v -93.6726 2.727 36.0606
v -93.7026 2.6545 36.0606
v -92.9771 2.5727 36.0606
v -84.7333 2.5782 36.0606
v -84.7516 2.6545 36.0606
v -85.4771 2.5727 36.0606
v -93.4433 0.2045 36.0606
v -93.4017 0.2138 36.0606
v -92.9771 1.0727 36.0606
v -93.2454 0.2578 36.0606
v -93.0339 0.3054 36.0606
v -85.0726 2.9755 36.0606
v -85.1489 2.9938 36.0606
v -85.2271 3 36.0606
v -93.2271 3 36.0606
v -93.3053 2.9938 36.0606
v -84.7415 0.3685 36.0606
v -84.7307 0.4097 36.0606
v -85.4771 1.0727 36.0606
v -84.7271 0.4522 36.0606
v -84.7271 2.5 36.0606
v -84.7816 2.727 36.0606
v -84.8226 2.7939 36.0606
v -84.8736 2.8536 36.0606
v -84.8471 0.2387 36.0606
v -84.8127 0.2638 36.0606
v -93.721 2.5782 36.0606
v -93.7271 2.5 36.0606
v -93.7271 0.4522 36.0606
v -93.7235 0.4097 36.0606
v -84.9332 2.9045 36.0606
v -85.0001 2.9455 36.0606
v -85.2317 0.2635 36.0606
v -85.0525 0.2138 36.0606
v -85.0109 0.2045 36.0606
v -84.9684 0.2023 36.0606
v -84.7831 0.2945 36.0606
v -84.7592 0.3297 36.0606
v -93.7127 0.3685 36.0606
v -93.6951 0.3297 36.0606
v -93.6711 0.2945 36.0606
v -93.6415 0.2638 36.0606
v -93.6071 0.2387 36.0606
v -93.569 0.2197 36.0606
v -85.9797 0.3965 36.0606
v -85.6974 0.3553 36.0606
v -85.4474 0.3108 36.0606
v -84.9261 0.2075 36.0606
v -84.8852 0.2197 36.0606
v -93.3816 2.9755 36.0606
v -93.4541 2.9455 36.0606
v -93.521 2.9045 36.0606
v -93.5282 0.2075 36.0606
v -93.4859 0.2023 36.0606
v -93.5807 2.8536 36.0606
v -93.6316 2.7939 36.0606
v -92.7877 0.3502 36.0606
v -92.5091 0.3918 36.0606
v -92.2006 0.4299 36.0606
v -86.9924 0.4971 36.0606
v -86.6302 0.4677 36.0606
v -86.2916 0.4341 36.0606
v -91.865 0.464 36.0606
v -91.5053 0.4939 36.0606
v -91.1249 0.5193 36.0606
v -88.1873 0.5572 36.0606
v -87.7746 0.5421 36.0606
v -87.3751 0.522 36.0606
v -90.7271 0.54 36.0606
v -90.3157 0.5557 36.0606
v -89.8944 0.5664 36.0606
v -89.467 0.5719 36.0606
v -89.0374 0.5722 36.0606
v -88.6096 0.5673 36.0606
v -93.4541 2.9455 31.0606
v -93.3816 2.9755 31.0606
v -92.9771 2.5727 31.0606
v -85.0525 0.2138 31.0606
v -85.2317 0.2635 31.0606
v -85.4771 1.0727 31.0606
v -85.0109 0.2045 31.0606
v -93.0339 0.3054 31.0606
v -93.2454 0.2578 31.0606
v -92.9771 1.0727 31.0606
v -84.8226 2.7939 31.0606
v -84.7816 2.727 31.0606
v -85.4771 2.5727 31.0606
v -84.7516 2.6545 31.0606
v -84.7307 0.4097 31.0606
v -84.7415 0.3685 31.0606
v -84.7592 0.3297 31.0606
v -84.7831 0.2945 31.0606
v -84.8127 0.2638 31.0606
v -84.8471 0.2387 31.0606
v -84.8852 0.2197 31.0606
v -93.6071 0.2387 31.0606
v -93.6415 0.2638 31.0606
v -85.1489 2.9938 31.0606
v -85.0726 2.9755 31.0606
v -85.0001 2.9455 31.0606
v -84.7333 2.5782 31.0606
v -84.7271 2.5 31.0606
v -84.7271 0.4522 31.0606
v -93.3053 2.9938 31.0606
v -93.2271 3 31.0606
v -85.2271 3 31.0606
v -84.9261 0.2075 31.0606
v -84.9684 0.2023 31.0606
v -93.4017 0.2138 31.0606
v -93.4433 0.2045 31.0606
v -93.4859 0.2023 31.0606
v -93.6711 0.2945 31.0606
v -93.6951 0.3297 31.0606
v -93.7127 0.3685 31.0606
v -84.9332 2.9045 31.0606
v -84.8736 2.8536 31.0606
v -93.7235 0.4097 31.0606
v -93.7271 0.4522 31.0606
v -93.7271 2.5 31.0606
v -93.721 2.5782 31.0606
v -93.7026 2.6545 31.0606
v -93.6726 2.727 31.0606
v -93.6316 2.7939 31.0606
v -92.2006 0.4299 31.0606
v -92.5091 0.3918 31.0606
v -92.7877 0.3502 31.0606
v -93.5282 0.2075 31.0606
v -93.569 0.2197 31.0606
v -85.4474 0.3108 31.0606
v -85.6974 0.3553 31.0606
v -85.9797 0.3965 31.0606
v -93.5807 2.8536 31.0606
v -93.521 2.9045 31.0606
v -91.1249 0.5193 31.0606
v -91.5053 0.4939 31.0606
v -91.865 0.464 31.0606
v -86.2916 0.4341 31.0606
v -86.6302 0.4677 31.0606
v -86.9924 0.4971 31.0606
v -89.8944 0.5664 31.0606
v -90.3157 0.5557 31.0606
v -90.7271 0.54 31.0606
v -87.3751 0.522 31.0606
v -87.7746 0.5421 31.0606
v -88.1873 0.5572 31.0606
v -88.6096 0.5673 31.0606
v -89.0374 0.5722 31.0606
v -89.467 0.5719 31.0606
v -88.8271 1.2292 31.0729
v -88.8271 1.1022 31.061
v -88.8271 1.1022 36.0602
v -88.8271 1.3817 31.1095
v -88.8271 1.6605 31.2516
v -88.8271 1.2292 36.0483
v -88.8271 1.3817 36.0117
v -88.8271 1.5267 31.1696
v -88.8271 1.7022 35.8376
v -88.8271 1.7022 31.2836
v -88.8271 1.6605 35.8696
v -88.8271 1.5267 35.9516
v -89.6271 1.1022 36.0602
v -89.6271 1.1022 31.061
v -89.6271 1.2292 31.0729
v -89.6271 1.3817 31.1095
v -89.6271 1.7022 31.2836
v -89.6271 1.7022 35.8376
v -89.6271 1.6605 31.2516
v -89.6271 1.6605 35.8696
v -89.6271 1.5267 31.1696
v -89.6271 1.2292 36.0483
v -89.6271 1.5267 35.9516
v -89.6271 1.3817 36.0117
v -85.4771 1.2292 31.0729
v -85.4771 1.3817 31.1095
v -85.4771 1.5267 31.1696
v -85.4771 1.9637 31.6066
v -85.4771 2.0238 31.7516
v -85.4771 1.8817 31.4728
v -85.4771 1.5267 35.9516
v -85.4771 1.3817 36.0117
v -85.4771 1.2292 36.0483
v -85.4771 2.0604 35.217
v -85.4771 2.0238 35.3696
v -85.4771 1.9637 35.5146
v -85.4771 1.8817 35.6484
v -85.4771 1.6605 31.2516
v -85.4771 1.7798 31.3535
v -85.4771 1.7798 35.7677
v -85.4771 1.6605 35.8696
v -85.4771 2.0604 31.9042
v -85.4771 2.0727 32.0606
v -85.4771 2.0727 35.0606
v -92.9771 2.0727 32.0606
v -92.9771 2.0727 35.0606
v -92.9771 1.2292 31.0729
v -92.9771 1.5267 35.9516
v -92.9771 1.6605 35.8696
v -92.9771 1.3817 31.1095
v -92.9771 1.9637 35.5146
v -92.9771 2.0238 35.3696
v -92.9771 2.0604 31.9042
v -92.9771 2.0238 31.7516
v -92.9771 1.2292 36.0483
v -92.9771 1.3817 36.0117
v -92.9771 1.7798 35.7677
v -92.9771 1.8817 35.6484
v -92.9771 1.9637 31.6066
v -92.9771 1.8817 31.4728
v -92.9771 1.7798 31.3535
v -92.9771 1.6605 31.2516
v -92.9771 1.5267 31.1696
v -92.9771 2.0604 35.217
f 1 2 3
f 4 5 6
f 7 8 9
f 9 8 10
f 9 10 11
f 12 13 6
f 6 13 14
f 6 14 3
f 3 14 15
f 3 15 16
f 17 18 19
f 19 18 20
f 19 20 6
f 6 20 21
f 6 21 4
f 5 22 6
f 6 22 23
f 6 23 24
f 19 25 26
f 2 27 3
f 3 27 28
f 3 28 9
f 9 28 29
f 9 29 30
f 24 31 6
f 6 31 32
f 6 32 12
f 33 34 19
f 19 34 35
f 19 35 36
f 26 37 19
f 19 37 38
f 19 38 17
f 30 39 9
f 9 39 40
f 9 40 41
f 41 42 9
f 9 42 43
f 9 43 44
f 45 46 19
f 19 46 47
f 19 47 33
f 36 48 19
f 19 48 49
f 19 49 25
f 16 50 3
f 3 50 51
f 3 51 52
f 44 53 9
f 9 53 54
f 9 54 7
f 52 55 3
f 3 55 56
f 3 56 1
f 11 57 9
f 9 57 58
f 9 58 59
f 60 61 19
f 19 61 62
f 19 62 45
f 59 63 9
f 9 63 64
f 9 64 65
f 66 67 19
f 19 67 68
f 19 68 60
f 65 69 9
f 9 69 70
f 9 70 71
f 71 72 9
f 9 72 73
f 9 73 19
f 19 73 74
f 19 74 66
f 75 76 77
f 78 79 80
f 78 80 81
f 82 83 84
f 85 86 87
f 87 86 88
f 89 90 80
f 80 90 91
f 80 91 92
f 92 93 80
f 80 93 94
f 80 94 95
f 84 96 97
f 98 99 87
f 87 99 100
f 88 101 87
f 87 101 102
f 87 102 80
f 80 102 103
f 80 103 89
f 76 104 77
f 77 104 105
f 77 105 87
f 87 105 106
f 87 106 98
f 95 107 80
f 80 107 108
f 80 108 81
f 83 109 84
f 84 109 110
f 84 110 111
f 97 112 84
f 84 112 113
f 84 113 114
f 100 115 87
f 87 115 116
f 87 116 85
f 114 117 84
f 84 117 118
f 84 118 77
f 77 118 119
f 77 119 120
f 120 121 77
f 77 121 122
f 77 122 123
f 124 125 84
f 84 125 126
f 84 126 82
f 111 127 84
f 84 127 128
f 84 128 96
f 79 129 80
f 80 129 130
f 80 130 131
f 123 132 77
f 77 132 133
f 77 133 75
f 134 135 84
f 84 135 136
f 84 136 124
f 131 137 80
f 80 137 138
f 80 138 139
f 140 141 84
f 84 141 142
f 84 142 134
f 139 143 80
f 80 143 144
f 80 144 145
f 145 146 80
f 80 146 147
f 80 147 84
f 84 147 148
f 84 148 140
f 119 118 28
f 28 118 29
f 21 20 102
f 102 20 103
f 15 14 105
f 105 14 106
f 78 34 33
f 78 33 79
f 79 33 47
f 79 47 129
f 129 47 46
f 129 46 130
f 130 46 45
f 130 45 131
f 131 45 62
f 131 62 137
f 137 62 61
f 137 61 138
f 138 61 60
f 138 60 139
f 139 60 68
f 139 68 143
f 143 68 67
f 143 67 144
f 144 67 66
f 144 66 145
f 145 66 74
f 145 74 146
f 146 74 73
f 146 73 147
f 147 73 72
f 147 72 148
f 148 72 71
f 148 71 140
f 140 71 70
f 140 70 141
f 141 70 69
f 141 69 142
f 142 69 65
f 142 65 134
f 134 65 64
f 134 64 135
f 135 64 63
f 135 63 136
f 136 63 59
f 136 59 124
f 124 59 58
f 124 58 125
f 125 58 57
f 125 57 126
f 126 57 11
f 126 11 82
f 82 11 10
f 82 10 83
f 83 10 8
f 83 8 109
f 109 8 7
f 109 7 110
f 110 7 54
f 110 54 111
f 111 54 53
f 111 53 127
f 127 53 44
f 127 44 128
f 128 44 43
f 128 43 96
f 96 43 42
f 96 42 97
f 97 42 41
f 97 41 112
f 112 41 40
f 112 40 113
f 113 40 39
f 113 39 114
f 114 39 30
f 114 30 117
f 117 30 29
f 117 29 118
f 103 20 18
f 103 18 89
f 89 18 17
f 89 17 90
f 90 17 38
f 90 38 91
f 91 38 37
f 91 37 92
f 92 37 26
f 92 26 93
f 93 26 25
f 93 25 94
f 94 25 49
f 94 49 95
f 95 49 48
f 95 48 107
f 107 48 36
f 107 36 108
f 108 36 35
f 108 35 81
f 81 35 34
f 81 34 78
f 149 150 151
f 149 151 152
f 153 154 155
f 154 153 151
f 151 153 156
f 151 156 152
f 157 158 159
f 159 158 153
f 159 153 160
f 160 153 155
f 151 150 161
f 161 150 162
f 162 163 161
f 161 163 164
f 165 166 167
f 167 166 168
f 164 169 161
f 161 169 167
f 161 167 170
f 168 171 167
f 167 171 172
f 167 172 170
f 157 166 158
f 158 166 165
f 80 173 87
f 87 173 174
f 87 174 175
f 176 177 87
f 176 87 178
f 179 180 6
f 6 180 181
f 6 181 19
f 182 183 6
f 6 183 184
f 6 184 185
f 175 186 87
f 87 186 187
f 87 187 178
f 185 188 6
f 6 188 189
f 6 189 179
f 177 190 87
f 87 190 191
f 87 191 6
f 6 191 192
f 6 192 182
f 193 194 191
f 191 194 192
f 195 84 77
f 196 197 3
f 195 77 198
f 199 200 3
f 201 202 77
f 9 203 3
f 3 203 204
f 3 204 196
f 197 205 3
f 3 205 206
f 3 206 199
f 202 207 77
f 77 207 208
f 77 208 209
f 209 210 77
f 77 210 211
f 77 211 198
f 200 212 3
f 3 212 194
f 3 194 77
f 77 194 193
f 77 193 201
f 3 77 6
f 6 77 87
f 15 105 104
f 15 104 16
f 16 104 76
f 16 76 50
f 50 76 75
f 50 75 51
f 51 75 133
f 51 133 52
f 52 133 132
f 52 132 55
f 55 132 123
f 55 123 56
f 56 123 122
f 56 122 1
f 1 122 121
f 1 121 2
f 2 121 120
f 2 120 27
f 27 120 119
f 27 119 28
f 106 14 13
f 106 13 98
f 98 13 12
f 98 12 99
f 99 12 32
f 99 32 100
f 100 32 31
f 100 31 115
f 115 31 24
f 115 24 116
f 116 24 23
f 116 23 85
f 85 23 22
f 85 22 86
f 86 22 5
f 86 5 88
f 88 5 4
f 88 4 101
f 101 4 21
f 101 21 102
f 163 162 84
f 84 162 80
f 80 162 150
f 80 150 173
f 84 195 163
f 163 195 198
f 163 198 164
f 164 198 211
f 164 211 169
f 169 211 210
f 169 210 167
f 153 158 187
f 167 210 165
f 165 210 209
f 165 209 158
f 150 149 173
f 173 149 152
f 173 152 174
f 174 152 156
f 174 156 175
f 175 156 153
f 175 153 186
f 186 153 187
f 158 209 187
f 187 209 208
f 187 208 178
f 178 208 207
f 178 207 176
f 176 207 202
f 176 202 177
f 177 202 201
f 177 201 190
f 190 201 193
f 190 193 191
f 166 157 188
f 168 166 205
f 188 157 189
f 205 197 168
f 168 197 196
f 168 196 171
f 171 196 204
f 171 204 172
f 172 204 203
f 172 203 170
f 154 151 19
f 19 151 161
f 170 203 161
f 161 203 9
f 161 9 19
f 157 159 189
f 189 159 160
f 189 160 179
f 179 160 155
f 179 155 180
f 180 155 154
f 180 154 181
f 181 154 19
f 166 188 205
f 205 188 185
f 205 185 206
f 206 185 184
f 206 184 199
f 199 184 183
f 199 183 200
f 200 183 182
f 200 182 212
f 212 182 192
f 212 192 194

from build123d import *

# Parameters (mm, degrees)
SKETCH1_W           = 9
SKETCH1_H           = 5
BOSS_EXTRUDE1_DEPTH = 3
SKETCH2_RX          = 4.5
SKETCH2_RY          = 0.5727208
CUT_EXTRUDE1_DEPTH  = 10
FILLET1_START       = 30
FILLET1_DEPTH       = 7
CUT_EXTRUDE3_DEPTH  = 10
FILLET2_R           = 0.5
FILLET3_R           = 1


with BuildPart() as part:
    # Sketch1 → Boss-Extrude1 (new body)
    with BuildSketch(Plane(origin=(0, 0, 0), x_dir=(1, 0, 0), z_dir=(0, 1, 0))):
        with Locations((-89.22711343, -33.560593966)):
            Rectangle(SKETCH1_W, SKETCH1_H)
    extrude(amount=BOSS_EXTRUDE1_DEPTH)

    # Sketch2 → Cut-Extrude1 (cut)
    with BuildSketch(Plane.XY.offset(36.060593966)):
        with Locations((-89.22711343, 0)):
            Ellipse(SKETCH2_RX, SKETCH2_RY)
    extrude(amount=-CUT_EXTRUDE1_DEPTH, mode=Mode.SUBTRACT)

    # Fillet1: read off the stored shape, not the designer's step
    # Fillet1 outline → Fillet1 (cut)
    with BuildSketch(Plane.XY.offset(FILLET1_START)):
        with BuildLine():
            ThreePointArc((-84.72711343, 0.452186329), (-84.82937288, 0.250511517), (-85.052495268, 0.213821947))
            add(Edge.make_bspline(
                [(-84.72711343, 0), (-84.72711343, 0.110921166), (-85.052495268, 0.213821947)],
                knots=[0, 0, 0, 0.398284272, 0.398284272, 0.398284272], degree=2, weights=[1, 0.925735272, 0.889131025]))
            Line((-84.72711343, 0), (-84.72711343, 0.452186329))
        make_face()
        with BuildLine():
            ThreePointArc((-93.401731592, 0.213821947), (-93.62485398, 0.250511517), (-93.72711343, 0.452186329))
            Line((-93.72711343, 0.452186329), (-93.72711343, 0))
            add(Edge.make_bspline(
                [(-93.401731592, 0.213821947), (-93.72711343, 0.110921166), (-93.72711343, 0)],
                knots=[2.743308382, 2.743308382, 2.743308382, 3.141592654, 3.141592654, 3.141592654], degree=2, weights=[0.889131025, 0.925735272, 1]))
        make_face()
    extrude(amount=FILLET1_DEPTH, mode=Mode.SUBTRACT)

    # Sketch3 → Cut-Extrude3 (cut)
    with BuildSketch(Plane.XY.offset(36.060593966)):
        Polygon((-85.47711343, 2.0727208), (-85.47711343, 2.5727208), (-92.97711343, 2.5727208), (-92.97711343, 2.0727208), (-89.22711343, 2.0727208), align=None)
        Polygon((-88.82711343, 1.702215796), (-88.82711343, 1.102215796), (-89.62711343, 1.102215796), (-89.62711343, 1.702215796), (-89.22711343, 1.702215796), align=None)
    extrude(amount=-CUT_EXTRUDE3_DEPTH, mode=Mode.SUBTRACT)

    # Fillet2
    fillet2_edges = [part.edges().sort_by_distance(p)[0] for p in [
        (-84.72711343, 3, 33.560593966),
        (-93.72711343, 3, 33.560593966),
    ]]
    fillet(fillet2_edges, radius=FILLET2_R)

    # Fillet3
    # the kernel refuses this fillet: 1 mm, written as the material it takes off along each edge
    with BuildSketch(Plane(origin=(-85.47711343, 2.0727208, 31.060593966), x_dir=(0, -1, 0), z_dir=(-1, 0, 0)), Plane(origin=(-85.47711343, 2.0727208, 36.060593966), x_dir=(0, 0, -1), z_dir=(-1, 0, 0))) as fillet3_piece_1:
        with BuildLine():
            CenterArc((FILLET3_R, FILLET3_R), FILLET3_R, 180, 90)
            Line((0, FILLET3_R), (0, 0))
            Line((0, 0), (FILLET3_R, 0))
        make_face()
    extrude(amount=7.5, mode=Mode.SUBTRACT)


solid = part.part
